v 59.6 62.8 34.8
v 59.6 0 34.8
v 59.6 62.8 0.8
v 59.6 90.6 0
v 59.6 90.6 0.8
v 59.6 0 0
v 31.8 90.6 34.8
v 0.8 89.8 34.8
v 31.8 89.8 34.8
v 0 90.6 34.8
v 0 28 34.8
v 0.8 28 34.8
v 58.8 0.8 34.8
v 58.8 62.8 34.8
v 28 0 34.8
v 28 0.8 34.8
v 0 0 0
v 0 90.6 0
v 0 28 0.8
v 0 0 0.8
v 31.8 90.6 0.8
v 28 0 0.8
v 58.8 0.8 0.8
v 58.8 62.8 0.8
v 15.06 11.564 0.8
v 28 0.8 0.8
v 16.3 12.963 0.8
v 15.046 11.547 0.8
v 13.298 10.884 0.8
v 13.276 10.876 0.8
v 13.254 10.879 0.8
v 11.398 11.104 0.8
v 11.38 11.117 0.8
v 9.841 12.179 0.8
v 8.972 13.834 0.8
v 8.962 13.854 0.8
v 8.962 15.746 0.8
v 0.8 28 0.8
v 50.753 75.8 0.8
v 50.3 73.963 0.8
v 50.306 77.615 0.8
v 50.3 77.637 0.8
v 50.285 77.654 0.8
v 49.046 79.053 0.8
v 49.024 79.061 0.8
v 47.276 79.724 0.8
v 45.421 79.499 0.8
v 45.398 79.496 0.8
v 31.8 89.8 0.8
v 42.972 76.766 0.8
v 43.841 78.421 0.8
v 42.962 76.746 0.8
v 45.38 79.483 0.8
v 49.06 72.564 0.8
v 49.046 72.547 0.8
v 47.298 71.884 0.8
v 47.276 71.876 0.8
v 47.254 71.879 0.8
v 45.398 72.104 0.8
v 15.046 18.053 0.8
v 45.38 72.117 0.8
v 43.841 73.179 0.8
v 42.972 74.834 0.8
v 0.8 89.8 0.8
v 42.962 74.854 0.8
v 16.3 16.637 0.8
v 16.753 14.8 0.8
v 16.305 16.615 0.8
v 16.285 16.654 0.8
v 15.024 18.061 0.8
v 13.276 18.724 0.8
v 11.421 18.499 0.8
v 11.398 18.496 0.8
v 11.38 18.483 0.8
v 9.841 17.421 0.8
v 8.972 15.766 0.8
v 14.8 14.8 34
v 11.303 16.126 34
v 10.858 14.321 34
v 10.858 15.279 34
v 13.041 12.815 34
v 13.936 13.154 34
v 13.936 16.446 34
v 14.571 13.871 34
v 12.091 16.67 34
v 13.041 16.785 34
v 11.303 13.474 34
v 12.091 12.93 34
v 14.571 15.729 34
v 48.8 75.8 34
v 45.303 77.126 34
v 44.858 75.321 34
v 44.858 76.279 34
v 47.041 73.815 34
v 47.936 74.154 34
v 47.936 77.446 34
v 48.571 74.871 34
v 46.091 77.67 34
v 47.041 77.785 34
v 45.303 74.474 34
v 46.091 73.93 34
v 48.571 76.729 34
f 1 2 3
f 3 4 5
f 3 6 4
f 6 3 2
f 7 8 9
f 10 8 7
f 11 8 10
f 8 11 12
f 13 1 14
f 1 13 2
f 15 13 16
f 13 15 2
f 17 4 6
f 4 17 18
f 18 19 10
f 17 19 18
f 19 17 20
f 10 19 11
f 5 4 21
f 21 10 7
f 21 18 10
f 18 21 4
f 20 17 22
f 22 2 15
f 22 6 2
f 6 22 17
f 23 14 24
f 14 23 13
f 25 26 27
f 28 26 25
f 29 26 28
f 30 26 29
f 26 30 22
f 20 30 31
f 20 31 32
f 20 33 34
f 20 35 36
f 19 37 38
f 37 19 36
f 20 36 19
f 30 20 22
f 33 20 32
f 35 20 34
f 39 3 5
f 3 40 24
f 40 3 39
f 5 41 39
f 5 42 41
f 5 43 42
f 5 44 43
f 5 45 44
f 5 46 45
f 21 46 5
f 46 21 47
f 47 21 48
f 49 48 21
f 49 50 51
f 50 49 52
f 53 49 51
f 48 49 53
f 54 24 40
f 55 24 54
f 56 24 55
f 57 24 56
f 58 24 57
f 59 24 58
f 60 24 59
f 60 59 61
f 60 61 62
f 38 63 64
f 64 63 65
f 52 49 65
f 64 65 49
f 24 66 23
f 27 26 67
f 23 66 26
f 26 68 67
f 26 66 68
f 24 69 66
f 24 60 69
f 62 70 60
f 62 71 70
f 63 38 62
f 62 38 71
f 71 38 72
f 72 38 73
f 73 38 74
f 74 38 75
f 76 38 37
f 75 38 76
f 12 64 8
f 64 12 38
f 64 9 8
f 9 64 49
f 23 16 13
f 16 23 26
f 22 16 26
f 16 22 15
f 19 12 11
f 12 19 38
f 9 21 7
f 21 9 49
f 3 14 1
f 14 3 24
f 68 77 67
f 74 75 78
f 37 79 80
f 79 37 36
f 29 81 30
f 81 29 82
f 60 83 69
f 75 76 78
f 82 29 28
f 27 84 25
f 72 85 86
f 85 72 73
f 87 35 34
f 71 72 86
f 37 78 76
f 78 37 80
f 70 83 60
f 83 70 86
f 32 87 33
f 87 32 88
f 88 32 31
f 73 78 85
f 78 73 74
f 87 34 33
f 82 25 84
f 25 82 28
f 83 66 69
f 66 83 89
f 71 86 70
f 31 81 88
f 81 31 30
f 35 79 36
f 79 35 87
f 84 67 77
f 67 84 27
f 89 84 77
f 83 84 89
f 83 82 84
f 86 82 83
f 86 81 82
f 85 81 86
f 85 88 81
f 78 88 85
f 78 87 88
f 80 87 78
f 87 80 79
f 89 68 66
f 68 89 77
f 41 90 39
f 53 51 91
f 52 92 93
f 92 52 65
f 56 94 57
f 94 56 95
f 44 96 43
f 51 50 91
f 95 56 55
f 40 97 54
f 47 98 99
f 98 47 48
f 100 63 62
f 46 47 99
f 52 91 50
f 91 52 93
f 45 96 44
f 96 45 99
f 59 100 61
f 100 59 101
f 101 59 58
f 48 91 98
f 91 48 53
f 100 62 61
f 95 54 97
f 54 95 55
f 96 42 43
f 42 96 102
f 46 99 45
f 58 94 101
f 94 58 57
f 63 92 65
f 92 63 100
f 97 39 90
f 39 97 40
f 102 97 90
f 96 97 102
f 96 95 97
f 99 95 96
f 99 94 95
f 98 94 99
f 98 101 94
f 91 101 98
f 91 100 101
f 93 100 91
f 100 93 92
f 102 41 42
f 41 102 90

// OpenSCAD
printerWallThickness=0.4;

cardW=56; // card width
cardH=87; // card height
deckH=34; // card deck height
boxE=1; //box empty space between card and box wall
boxT=2*printerWallThickness; //box thickness

/*
Card deck box for cards that are size x+y and a deck that is z height.
e is the empty space left between the card deck and the box walls.
t is the thickness of the wall.
*/
module box(x,y,z,e,t){
    limit=50;
    difference(){
        cube([x+2*(e+t),y+2*(e+t),z+t]);
        translate([t,t,t]){
            cube([x+2*e,y+2*e,limit]);
        }
    }
}
//box(cardW,cardH,deckH,boxE,boxT);

/*
Lid for the card deck box.
*/
module boxLid(x,y,z,e,t){
    translate([-(t+e),-(t+e),-t]){
        box(x+2*(t+e),y+2*(t+e),z+t,e,t);
    }
}
//boxLid(cardW,cardH,deckH,boxE,boxT);

/*
Card deck box tunned for the UNO H20 game.
*/
module unoBox(x,y,z,e,t){
    difference(){
        box(x,y,z,e,t);
        // remove walls
        o=1;
        union(){
            translate([-o,-o,t]){
                cube([x/2+o,x/2+o,z+o]);
            }
            translate([t+e+x/2+2*o,t+e+y-x/2+2*o,t]){
                cube([x/2+o,x/2+o,z+o]);
            }
        }
    }
    // horns
    hornD=4;
    hornCardW=11;
    hornCardH=13;
    translate([hornCardW+e+t,hornCardH+e+t,0]){
        cylinder(z,hornD,hornD/2);
    }
    translate([x+e+t-hornCardW,y+e+t-hornCardH,0]){
        cylinder(z,hornD,hornD/2);
    }    
}

unoBox(cardW,cardH,deckH,boxE,boxT);
